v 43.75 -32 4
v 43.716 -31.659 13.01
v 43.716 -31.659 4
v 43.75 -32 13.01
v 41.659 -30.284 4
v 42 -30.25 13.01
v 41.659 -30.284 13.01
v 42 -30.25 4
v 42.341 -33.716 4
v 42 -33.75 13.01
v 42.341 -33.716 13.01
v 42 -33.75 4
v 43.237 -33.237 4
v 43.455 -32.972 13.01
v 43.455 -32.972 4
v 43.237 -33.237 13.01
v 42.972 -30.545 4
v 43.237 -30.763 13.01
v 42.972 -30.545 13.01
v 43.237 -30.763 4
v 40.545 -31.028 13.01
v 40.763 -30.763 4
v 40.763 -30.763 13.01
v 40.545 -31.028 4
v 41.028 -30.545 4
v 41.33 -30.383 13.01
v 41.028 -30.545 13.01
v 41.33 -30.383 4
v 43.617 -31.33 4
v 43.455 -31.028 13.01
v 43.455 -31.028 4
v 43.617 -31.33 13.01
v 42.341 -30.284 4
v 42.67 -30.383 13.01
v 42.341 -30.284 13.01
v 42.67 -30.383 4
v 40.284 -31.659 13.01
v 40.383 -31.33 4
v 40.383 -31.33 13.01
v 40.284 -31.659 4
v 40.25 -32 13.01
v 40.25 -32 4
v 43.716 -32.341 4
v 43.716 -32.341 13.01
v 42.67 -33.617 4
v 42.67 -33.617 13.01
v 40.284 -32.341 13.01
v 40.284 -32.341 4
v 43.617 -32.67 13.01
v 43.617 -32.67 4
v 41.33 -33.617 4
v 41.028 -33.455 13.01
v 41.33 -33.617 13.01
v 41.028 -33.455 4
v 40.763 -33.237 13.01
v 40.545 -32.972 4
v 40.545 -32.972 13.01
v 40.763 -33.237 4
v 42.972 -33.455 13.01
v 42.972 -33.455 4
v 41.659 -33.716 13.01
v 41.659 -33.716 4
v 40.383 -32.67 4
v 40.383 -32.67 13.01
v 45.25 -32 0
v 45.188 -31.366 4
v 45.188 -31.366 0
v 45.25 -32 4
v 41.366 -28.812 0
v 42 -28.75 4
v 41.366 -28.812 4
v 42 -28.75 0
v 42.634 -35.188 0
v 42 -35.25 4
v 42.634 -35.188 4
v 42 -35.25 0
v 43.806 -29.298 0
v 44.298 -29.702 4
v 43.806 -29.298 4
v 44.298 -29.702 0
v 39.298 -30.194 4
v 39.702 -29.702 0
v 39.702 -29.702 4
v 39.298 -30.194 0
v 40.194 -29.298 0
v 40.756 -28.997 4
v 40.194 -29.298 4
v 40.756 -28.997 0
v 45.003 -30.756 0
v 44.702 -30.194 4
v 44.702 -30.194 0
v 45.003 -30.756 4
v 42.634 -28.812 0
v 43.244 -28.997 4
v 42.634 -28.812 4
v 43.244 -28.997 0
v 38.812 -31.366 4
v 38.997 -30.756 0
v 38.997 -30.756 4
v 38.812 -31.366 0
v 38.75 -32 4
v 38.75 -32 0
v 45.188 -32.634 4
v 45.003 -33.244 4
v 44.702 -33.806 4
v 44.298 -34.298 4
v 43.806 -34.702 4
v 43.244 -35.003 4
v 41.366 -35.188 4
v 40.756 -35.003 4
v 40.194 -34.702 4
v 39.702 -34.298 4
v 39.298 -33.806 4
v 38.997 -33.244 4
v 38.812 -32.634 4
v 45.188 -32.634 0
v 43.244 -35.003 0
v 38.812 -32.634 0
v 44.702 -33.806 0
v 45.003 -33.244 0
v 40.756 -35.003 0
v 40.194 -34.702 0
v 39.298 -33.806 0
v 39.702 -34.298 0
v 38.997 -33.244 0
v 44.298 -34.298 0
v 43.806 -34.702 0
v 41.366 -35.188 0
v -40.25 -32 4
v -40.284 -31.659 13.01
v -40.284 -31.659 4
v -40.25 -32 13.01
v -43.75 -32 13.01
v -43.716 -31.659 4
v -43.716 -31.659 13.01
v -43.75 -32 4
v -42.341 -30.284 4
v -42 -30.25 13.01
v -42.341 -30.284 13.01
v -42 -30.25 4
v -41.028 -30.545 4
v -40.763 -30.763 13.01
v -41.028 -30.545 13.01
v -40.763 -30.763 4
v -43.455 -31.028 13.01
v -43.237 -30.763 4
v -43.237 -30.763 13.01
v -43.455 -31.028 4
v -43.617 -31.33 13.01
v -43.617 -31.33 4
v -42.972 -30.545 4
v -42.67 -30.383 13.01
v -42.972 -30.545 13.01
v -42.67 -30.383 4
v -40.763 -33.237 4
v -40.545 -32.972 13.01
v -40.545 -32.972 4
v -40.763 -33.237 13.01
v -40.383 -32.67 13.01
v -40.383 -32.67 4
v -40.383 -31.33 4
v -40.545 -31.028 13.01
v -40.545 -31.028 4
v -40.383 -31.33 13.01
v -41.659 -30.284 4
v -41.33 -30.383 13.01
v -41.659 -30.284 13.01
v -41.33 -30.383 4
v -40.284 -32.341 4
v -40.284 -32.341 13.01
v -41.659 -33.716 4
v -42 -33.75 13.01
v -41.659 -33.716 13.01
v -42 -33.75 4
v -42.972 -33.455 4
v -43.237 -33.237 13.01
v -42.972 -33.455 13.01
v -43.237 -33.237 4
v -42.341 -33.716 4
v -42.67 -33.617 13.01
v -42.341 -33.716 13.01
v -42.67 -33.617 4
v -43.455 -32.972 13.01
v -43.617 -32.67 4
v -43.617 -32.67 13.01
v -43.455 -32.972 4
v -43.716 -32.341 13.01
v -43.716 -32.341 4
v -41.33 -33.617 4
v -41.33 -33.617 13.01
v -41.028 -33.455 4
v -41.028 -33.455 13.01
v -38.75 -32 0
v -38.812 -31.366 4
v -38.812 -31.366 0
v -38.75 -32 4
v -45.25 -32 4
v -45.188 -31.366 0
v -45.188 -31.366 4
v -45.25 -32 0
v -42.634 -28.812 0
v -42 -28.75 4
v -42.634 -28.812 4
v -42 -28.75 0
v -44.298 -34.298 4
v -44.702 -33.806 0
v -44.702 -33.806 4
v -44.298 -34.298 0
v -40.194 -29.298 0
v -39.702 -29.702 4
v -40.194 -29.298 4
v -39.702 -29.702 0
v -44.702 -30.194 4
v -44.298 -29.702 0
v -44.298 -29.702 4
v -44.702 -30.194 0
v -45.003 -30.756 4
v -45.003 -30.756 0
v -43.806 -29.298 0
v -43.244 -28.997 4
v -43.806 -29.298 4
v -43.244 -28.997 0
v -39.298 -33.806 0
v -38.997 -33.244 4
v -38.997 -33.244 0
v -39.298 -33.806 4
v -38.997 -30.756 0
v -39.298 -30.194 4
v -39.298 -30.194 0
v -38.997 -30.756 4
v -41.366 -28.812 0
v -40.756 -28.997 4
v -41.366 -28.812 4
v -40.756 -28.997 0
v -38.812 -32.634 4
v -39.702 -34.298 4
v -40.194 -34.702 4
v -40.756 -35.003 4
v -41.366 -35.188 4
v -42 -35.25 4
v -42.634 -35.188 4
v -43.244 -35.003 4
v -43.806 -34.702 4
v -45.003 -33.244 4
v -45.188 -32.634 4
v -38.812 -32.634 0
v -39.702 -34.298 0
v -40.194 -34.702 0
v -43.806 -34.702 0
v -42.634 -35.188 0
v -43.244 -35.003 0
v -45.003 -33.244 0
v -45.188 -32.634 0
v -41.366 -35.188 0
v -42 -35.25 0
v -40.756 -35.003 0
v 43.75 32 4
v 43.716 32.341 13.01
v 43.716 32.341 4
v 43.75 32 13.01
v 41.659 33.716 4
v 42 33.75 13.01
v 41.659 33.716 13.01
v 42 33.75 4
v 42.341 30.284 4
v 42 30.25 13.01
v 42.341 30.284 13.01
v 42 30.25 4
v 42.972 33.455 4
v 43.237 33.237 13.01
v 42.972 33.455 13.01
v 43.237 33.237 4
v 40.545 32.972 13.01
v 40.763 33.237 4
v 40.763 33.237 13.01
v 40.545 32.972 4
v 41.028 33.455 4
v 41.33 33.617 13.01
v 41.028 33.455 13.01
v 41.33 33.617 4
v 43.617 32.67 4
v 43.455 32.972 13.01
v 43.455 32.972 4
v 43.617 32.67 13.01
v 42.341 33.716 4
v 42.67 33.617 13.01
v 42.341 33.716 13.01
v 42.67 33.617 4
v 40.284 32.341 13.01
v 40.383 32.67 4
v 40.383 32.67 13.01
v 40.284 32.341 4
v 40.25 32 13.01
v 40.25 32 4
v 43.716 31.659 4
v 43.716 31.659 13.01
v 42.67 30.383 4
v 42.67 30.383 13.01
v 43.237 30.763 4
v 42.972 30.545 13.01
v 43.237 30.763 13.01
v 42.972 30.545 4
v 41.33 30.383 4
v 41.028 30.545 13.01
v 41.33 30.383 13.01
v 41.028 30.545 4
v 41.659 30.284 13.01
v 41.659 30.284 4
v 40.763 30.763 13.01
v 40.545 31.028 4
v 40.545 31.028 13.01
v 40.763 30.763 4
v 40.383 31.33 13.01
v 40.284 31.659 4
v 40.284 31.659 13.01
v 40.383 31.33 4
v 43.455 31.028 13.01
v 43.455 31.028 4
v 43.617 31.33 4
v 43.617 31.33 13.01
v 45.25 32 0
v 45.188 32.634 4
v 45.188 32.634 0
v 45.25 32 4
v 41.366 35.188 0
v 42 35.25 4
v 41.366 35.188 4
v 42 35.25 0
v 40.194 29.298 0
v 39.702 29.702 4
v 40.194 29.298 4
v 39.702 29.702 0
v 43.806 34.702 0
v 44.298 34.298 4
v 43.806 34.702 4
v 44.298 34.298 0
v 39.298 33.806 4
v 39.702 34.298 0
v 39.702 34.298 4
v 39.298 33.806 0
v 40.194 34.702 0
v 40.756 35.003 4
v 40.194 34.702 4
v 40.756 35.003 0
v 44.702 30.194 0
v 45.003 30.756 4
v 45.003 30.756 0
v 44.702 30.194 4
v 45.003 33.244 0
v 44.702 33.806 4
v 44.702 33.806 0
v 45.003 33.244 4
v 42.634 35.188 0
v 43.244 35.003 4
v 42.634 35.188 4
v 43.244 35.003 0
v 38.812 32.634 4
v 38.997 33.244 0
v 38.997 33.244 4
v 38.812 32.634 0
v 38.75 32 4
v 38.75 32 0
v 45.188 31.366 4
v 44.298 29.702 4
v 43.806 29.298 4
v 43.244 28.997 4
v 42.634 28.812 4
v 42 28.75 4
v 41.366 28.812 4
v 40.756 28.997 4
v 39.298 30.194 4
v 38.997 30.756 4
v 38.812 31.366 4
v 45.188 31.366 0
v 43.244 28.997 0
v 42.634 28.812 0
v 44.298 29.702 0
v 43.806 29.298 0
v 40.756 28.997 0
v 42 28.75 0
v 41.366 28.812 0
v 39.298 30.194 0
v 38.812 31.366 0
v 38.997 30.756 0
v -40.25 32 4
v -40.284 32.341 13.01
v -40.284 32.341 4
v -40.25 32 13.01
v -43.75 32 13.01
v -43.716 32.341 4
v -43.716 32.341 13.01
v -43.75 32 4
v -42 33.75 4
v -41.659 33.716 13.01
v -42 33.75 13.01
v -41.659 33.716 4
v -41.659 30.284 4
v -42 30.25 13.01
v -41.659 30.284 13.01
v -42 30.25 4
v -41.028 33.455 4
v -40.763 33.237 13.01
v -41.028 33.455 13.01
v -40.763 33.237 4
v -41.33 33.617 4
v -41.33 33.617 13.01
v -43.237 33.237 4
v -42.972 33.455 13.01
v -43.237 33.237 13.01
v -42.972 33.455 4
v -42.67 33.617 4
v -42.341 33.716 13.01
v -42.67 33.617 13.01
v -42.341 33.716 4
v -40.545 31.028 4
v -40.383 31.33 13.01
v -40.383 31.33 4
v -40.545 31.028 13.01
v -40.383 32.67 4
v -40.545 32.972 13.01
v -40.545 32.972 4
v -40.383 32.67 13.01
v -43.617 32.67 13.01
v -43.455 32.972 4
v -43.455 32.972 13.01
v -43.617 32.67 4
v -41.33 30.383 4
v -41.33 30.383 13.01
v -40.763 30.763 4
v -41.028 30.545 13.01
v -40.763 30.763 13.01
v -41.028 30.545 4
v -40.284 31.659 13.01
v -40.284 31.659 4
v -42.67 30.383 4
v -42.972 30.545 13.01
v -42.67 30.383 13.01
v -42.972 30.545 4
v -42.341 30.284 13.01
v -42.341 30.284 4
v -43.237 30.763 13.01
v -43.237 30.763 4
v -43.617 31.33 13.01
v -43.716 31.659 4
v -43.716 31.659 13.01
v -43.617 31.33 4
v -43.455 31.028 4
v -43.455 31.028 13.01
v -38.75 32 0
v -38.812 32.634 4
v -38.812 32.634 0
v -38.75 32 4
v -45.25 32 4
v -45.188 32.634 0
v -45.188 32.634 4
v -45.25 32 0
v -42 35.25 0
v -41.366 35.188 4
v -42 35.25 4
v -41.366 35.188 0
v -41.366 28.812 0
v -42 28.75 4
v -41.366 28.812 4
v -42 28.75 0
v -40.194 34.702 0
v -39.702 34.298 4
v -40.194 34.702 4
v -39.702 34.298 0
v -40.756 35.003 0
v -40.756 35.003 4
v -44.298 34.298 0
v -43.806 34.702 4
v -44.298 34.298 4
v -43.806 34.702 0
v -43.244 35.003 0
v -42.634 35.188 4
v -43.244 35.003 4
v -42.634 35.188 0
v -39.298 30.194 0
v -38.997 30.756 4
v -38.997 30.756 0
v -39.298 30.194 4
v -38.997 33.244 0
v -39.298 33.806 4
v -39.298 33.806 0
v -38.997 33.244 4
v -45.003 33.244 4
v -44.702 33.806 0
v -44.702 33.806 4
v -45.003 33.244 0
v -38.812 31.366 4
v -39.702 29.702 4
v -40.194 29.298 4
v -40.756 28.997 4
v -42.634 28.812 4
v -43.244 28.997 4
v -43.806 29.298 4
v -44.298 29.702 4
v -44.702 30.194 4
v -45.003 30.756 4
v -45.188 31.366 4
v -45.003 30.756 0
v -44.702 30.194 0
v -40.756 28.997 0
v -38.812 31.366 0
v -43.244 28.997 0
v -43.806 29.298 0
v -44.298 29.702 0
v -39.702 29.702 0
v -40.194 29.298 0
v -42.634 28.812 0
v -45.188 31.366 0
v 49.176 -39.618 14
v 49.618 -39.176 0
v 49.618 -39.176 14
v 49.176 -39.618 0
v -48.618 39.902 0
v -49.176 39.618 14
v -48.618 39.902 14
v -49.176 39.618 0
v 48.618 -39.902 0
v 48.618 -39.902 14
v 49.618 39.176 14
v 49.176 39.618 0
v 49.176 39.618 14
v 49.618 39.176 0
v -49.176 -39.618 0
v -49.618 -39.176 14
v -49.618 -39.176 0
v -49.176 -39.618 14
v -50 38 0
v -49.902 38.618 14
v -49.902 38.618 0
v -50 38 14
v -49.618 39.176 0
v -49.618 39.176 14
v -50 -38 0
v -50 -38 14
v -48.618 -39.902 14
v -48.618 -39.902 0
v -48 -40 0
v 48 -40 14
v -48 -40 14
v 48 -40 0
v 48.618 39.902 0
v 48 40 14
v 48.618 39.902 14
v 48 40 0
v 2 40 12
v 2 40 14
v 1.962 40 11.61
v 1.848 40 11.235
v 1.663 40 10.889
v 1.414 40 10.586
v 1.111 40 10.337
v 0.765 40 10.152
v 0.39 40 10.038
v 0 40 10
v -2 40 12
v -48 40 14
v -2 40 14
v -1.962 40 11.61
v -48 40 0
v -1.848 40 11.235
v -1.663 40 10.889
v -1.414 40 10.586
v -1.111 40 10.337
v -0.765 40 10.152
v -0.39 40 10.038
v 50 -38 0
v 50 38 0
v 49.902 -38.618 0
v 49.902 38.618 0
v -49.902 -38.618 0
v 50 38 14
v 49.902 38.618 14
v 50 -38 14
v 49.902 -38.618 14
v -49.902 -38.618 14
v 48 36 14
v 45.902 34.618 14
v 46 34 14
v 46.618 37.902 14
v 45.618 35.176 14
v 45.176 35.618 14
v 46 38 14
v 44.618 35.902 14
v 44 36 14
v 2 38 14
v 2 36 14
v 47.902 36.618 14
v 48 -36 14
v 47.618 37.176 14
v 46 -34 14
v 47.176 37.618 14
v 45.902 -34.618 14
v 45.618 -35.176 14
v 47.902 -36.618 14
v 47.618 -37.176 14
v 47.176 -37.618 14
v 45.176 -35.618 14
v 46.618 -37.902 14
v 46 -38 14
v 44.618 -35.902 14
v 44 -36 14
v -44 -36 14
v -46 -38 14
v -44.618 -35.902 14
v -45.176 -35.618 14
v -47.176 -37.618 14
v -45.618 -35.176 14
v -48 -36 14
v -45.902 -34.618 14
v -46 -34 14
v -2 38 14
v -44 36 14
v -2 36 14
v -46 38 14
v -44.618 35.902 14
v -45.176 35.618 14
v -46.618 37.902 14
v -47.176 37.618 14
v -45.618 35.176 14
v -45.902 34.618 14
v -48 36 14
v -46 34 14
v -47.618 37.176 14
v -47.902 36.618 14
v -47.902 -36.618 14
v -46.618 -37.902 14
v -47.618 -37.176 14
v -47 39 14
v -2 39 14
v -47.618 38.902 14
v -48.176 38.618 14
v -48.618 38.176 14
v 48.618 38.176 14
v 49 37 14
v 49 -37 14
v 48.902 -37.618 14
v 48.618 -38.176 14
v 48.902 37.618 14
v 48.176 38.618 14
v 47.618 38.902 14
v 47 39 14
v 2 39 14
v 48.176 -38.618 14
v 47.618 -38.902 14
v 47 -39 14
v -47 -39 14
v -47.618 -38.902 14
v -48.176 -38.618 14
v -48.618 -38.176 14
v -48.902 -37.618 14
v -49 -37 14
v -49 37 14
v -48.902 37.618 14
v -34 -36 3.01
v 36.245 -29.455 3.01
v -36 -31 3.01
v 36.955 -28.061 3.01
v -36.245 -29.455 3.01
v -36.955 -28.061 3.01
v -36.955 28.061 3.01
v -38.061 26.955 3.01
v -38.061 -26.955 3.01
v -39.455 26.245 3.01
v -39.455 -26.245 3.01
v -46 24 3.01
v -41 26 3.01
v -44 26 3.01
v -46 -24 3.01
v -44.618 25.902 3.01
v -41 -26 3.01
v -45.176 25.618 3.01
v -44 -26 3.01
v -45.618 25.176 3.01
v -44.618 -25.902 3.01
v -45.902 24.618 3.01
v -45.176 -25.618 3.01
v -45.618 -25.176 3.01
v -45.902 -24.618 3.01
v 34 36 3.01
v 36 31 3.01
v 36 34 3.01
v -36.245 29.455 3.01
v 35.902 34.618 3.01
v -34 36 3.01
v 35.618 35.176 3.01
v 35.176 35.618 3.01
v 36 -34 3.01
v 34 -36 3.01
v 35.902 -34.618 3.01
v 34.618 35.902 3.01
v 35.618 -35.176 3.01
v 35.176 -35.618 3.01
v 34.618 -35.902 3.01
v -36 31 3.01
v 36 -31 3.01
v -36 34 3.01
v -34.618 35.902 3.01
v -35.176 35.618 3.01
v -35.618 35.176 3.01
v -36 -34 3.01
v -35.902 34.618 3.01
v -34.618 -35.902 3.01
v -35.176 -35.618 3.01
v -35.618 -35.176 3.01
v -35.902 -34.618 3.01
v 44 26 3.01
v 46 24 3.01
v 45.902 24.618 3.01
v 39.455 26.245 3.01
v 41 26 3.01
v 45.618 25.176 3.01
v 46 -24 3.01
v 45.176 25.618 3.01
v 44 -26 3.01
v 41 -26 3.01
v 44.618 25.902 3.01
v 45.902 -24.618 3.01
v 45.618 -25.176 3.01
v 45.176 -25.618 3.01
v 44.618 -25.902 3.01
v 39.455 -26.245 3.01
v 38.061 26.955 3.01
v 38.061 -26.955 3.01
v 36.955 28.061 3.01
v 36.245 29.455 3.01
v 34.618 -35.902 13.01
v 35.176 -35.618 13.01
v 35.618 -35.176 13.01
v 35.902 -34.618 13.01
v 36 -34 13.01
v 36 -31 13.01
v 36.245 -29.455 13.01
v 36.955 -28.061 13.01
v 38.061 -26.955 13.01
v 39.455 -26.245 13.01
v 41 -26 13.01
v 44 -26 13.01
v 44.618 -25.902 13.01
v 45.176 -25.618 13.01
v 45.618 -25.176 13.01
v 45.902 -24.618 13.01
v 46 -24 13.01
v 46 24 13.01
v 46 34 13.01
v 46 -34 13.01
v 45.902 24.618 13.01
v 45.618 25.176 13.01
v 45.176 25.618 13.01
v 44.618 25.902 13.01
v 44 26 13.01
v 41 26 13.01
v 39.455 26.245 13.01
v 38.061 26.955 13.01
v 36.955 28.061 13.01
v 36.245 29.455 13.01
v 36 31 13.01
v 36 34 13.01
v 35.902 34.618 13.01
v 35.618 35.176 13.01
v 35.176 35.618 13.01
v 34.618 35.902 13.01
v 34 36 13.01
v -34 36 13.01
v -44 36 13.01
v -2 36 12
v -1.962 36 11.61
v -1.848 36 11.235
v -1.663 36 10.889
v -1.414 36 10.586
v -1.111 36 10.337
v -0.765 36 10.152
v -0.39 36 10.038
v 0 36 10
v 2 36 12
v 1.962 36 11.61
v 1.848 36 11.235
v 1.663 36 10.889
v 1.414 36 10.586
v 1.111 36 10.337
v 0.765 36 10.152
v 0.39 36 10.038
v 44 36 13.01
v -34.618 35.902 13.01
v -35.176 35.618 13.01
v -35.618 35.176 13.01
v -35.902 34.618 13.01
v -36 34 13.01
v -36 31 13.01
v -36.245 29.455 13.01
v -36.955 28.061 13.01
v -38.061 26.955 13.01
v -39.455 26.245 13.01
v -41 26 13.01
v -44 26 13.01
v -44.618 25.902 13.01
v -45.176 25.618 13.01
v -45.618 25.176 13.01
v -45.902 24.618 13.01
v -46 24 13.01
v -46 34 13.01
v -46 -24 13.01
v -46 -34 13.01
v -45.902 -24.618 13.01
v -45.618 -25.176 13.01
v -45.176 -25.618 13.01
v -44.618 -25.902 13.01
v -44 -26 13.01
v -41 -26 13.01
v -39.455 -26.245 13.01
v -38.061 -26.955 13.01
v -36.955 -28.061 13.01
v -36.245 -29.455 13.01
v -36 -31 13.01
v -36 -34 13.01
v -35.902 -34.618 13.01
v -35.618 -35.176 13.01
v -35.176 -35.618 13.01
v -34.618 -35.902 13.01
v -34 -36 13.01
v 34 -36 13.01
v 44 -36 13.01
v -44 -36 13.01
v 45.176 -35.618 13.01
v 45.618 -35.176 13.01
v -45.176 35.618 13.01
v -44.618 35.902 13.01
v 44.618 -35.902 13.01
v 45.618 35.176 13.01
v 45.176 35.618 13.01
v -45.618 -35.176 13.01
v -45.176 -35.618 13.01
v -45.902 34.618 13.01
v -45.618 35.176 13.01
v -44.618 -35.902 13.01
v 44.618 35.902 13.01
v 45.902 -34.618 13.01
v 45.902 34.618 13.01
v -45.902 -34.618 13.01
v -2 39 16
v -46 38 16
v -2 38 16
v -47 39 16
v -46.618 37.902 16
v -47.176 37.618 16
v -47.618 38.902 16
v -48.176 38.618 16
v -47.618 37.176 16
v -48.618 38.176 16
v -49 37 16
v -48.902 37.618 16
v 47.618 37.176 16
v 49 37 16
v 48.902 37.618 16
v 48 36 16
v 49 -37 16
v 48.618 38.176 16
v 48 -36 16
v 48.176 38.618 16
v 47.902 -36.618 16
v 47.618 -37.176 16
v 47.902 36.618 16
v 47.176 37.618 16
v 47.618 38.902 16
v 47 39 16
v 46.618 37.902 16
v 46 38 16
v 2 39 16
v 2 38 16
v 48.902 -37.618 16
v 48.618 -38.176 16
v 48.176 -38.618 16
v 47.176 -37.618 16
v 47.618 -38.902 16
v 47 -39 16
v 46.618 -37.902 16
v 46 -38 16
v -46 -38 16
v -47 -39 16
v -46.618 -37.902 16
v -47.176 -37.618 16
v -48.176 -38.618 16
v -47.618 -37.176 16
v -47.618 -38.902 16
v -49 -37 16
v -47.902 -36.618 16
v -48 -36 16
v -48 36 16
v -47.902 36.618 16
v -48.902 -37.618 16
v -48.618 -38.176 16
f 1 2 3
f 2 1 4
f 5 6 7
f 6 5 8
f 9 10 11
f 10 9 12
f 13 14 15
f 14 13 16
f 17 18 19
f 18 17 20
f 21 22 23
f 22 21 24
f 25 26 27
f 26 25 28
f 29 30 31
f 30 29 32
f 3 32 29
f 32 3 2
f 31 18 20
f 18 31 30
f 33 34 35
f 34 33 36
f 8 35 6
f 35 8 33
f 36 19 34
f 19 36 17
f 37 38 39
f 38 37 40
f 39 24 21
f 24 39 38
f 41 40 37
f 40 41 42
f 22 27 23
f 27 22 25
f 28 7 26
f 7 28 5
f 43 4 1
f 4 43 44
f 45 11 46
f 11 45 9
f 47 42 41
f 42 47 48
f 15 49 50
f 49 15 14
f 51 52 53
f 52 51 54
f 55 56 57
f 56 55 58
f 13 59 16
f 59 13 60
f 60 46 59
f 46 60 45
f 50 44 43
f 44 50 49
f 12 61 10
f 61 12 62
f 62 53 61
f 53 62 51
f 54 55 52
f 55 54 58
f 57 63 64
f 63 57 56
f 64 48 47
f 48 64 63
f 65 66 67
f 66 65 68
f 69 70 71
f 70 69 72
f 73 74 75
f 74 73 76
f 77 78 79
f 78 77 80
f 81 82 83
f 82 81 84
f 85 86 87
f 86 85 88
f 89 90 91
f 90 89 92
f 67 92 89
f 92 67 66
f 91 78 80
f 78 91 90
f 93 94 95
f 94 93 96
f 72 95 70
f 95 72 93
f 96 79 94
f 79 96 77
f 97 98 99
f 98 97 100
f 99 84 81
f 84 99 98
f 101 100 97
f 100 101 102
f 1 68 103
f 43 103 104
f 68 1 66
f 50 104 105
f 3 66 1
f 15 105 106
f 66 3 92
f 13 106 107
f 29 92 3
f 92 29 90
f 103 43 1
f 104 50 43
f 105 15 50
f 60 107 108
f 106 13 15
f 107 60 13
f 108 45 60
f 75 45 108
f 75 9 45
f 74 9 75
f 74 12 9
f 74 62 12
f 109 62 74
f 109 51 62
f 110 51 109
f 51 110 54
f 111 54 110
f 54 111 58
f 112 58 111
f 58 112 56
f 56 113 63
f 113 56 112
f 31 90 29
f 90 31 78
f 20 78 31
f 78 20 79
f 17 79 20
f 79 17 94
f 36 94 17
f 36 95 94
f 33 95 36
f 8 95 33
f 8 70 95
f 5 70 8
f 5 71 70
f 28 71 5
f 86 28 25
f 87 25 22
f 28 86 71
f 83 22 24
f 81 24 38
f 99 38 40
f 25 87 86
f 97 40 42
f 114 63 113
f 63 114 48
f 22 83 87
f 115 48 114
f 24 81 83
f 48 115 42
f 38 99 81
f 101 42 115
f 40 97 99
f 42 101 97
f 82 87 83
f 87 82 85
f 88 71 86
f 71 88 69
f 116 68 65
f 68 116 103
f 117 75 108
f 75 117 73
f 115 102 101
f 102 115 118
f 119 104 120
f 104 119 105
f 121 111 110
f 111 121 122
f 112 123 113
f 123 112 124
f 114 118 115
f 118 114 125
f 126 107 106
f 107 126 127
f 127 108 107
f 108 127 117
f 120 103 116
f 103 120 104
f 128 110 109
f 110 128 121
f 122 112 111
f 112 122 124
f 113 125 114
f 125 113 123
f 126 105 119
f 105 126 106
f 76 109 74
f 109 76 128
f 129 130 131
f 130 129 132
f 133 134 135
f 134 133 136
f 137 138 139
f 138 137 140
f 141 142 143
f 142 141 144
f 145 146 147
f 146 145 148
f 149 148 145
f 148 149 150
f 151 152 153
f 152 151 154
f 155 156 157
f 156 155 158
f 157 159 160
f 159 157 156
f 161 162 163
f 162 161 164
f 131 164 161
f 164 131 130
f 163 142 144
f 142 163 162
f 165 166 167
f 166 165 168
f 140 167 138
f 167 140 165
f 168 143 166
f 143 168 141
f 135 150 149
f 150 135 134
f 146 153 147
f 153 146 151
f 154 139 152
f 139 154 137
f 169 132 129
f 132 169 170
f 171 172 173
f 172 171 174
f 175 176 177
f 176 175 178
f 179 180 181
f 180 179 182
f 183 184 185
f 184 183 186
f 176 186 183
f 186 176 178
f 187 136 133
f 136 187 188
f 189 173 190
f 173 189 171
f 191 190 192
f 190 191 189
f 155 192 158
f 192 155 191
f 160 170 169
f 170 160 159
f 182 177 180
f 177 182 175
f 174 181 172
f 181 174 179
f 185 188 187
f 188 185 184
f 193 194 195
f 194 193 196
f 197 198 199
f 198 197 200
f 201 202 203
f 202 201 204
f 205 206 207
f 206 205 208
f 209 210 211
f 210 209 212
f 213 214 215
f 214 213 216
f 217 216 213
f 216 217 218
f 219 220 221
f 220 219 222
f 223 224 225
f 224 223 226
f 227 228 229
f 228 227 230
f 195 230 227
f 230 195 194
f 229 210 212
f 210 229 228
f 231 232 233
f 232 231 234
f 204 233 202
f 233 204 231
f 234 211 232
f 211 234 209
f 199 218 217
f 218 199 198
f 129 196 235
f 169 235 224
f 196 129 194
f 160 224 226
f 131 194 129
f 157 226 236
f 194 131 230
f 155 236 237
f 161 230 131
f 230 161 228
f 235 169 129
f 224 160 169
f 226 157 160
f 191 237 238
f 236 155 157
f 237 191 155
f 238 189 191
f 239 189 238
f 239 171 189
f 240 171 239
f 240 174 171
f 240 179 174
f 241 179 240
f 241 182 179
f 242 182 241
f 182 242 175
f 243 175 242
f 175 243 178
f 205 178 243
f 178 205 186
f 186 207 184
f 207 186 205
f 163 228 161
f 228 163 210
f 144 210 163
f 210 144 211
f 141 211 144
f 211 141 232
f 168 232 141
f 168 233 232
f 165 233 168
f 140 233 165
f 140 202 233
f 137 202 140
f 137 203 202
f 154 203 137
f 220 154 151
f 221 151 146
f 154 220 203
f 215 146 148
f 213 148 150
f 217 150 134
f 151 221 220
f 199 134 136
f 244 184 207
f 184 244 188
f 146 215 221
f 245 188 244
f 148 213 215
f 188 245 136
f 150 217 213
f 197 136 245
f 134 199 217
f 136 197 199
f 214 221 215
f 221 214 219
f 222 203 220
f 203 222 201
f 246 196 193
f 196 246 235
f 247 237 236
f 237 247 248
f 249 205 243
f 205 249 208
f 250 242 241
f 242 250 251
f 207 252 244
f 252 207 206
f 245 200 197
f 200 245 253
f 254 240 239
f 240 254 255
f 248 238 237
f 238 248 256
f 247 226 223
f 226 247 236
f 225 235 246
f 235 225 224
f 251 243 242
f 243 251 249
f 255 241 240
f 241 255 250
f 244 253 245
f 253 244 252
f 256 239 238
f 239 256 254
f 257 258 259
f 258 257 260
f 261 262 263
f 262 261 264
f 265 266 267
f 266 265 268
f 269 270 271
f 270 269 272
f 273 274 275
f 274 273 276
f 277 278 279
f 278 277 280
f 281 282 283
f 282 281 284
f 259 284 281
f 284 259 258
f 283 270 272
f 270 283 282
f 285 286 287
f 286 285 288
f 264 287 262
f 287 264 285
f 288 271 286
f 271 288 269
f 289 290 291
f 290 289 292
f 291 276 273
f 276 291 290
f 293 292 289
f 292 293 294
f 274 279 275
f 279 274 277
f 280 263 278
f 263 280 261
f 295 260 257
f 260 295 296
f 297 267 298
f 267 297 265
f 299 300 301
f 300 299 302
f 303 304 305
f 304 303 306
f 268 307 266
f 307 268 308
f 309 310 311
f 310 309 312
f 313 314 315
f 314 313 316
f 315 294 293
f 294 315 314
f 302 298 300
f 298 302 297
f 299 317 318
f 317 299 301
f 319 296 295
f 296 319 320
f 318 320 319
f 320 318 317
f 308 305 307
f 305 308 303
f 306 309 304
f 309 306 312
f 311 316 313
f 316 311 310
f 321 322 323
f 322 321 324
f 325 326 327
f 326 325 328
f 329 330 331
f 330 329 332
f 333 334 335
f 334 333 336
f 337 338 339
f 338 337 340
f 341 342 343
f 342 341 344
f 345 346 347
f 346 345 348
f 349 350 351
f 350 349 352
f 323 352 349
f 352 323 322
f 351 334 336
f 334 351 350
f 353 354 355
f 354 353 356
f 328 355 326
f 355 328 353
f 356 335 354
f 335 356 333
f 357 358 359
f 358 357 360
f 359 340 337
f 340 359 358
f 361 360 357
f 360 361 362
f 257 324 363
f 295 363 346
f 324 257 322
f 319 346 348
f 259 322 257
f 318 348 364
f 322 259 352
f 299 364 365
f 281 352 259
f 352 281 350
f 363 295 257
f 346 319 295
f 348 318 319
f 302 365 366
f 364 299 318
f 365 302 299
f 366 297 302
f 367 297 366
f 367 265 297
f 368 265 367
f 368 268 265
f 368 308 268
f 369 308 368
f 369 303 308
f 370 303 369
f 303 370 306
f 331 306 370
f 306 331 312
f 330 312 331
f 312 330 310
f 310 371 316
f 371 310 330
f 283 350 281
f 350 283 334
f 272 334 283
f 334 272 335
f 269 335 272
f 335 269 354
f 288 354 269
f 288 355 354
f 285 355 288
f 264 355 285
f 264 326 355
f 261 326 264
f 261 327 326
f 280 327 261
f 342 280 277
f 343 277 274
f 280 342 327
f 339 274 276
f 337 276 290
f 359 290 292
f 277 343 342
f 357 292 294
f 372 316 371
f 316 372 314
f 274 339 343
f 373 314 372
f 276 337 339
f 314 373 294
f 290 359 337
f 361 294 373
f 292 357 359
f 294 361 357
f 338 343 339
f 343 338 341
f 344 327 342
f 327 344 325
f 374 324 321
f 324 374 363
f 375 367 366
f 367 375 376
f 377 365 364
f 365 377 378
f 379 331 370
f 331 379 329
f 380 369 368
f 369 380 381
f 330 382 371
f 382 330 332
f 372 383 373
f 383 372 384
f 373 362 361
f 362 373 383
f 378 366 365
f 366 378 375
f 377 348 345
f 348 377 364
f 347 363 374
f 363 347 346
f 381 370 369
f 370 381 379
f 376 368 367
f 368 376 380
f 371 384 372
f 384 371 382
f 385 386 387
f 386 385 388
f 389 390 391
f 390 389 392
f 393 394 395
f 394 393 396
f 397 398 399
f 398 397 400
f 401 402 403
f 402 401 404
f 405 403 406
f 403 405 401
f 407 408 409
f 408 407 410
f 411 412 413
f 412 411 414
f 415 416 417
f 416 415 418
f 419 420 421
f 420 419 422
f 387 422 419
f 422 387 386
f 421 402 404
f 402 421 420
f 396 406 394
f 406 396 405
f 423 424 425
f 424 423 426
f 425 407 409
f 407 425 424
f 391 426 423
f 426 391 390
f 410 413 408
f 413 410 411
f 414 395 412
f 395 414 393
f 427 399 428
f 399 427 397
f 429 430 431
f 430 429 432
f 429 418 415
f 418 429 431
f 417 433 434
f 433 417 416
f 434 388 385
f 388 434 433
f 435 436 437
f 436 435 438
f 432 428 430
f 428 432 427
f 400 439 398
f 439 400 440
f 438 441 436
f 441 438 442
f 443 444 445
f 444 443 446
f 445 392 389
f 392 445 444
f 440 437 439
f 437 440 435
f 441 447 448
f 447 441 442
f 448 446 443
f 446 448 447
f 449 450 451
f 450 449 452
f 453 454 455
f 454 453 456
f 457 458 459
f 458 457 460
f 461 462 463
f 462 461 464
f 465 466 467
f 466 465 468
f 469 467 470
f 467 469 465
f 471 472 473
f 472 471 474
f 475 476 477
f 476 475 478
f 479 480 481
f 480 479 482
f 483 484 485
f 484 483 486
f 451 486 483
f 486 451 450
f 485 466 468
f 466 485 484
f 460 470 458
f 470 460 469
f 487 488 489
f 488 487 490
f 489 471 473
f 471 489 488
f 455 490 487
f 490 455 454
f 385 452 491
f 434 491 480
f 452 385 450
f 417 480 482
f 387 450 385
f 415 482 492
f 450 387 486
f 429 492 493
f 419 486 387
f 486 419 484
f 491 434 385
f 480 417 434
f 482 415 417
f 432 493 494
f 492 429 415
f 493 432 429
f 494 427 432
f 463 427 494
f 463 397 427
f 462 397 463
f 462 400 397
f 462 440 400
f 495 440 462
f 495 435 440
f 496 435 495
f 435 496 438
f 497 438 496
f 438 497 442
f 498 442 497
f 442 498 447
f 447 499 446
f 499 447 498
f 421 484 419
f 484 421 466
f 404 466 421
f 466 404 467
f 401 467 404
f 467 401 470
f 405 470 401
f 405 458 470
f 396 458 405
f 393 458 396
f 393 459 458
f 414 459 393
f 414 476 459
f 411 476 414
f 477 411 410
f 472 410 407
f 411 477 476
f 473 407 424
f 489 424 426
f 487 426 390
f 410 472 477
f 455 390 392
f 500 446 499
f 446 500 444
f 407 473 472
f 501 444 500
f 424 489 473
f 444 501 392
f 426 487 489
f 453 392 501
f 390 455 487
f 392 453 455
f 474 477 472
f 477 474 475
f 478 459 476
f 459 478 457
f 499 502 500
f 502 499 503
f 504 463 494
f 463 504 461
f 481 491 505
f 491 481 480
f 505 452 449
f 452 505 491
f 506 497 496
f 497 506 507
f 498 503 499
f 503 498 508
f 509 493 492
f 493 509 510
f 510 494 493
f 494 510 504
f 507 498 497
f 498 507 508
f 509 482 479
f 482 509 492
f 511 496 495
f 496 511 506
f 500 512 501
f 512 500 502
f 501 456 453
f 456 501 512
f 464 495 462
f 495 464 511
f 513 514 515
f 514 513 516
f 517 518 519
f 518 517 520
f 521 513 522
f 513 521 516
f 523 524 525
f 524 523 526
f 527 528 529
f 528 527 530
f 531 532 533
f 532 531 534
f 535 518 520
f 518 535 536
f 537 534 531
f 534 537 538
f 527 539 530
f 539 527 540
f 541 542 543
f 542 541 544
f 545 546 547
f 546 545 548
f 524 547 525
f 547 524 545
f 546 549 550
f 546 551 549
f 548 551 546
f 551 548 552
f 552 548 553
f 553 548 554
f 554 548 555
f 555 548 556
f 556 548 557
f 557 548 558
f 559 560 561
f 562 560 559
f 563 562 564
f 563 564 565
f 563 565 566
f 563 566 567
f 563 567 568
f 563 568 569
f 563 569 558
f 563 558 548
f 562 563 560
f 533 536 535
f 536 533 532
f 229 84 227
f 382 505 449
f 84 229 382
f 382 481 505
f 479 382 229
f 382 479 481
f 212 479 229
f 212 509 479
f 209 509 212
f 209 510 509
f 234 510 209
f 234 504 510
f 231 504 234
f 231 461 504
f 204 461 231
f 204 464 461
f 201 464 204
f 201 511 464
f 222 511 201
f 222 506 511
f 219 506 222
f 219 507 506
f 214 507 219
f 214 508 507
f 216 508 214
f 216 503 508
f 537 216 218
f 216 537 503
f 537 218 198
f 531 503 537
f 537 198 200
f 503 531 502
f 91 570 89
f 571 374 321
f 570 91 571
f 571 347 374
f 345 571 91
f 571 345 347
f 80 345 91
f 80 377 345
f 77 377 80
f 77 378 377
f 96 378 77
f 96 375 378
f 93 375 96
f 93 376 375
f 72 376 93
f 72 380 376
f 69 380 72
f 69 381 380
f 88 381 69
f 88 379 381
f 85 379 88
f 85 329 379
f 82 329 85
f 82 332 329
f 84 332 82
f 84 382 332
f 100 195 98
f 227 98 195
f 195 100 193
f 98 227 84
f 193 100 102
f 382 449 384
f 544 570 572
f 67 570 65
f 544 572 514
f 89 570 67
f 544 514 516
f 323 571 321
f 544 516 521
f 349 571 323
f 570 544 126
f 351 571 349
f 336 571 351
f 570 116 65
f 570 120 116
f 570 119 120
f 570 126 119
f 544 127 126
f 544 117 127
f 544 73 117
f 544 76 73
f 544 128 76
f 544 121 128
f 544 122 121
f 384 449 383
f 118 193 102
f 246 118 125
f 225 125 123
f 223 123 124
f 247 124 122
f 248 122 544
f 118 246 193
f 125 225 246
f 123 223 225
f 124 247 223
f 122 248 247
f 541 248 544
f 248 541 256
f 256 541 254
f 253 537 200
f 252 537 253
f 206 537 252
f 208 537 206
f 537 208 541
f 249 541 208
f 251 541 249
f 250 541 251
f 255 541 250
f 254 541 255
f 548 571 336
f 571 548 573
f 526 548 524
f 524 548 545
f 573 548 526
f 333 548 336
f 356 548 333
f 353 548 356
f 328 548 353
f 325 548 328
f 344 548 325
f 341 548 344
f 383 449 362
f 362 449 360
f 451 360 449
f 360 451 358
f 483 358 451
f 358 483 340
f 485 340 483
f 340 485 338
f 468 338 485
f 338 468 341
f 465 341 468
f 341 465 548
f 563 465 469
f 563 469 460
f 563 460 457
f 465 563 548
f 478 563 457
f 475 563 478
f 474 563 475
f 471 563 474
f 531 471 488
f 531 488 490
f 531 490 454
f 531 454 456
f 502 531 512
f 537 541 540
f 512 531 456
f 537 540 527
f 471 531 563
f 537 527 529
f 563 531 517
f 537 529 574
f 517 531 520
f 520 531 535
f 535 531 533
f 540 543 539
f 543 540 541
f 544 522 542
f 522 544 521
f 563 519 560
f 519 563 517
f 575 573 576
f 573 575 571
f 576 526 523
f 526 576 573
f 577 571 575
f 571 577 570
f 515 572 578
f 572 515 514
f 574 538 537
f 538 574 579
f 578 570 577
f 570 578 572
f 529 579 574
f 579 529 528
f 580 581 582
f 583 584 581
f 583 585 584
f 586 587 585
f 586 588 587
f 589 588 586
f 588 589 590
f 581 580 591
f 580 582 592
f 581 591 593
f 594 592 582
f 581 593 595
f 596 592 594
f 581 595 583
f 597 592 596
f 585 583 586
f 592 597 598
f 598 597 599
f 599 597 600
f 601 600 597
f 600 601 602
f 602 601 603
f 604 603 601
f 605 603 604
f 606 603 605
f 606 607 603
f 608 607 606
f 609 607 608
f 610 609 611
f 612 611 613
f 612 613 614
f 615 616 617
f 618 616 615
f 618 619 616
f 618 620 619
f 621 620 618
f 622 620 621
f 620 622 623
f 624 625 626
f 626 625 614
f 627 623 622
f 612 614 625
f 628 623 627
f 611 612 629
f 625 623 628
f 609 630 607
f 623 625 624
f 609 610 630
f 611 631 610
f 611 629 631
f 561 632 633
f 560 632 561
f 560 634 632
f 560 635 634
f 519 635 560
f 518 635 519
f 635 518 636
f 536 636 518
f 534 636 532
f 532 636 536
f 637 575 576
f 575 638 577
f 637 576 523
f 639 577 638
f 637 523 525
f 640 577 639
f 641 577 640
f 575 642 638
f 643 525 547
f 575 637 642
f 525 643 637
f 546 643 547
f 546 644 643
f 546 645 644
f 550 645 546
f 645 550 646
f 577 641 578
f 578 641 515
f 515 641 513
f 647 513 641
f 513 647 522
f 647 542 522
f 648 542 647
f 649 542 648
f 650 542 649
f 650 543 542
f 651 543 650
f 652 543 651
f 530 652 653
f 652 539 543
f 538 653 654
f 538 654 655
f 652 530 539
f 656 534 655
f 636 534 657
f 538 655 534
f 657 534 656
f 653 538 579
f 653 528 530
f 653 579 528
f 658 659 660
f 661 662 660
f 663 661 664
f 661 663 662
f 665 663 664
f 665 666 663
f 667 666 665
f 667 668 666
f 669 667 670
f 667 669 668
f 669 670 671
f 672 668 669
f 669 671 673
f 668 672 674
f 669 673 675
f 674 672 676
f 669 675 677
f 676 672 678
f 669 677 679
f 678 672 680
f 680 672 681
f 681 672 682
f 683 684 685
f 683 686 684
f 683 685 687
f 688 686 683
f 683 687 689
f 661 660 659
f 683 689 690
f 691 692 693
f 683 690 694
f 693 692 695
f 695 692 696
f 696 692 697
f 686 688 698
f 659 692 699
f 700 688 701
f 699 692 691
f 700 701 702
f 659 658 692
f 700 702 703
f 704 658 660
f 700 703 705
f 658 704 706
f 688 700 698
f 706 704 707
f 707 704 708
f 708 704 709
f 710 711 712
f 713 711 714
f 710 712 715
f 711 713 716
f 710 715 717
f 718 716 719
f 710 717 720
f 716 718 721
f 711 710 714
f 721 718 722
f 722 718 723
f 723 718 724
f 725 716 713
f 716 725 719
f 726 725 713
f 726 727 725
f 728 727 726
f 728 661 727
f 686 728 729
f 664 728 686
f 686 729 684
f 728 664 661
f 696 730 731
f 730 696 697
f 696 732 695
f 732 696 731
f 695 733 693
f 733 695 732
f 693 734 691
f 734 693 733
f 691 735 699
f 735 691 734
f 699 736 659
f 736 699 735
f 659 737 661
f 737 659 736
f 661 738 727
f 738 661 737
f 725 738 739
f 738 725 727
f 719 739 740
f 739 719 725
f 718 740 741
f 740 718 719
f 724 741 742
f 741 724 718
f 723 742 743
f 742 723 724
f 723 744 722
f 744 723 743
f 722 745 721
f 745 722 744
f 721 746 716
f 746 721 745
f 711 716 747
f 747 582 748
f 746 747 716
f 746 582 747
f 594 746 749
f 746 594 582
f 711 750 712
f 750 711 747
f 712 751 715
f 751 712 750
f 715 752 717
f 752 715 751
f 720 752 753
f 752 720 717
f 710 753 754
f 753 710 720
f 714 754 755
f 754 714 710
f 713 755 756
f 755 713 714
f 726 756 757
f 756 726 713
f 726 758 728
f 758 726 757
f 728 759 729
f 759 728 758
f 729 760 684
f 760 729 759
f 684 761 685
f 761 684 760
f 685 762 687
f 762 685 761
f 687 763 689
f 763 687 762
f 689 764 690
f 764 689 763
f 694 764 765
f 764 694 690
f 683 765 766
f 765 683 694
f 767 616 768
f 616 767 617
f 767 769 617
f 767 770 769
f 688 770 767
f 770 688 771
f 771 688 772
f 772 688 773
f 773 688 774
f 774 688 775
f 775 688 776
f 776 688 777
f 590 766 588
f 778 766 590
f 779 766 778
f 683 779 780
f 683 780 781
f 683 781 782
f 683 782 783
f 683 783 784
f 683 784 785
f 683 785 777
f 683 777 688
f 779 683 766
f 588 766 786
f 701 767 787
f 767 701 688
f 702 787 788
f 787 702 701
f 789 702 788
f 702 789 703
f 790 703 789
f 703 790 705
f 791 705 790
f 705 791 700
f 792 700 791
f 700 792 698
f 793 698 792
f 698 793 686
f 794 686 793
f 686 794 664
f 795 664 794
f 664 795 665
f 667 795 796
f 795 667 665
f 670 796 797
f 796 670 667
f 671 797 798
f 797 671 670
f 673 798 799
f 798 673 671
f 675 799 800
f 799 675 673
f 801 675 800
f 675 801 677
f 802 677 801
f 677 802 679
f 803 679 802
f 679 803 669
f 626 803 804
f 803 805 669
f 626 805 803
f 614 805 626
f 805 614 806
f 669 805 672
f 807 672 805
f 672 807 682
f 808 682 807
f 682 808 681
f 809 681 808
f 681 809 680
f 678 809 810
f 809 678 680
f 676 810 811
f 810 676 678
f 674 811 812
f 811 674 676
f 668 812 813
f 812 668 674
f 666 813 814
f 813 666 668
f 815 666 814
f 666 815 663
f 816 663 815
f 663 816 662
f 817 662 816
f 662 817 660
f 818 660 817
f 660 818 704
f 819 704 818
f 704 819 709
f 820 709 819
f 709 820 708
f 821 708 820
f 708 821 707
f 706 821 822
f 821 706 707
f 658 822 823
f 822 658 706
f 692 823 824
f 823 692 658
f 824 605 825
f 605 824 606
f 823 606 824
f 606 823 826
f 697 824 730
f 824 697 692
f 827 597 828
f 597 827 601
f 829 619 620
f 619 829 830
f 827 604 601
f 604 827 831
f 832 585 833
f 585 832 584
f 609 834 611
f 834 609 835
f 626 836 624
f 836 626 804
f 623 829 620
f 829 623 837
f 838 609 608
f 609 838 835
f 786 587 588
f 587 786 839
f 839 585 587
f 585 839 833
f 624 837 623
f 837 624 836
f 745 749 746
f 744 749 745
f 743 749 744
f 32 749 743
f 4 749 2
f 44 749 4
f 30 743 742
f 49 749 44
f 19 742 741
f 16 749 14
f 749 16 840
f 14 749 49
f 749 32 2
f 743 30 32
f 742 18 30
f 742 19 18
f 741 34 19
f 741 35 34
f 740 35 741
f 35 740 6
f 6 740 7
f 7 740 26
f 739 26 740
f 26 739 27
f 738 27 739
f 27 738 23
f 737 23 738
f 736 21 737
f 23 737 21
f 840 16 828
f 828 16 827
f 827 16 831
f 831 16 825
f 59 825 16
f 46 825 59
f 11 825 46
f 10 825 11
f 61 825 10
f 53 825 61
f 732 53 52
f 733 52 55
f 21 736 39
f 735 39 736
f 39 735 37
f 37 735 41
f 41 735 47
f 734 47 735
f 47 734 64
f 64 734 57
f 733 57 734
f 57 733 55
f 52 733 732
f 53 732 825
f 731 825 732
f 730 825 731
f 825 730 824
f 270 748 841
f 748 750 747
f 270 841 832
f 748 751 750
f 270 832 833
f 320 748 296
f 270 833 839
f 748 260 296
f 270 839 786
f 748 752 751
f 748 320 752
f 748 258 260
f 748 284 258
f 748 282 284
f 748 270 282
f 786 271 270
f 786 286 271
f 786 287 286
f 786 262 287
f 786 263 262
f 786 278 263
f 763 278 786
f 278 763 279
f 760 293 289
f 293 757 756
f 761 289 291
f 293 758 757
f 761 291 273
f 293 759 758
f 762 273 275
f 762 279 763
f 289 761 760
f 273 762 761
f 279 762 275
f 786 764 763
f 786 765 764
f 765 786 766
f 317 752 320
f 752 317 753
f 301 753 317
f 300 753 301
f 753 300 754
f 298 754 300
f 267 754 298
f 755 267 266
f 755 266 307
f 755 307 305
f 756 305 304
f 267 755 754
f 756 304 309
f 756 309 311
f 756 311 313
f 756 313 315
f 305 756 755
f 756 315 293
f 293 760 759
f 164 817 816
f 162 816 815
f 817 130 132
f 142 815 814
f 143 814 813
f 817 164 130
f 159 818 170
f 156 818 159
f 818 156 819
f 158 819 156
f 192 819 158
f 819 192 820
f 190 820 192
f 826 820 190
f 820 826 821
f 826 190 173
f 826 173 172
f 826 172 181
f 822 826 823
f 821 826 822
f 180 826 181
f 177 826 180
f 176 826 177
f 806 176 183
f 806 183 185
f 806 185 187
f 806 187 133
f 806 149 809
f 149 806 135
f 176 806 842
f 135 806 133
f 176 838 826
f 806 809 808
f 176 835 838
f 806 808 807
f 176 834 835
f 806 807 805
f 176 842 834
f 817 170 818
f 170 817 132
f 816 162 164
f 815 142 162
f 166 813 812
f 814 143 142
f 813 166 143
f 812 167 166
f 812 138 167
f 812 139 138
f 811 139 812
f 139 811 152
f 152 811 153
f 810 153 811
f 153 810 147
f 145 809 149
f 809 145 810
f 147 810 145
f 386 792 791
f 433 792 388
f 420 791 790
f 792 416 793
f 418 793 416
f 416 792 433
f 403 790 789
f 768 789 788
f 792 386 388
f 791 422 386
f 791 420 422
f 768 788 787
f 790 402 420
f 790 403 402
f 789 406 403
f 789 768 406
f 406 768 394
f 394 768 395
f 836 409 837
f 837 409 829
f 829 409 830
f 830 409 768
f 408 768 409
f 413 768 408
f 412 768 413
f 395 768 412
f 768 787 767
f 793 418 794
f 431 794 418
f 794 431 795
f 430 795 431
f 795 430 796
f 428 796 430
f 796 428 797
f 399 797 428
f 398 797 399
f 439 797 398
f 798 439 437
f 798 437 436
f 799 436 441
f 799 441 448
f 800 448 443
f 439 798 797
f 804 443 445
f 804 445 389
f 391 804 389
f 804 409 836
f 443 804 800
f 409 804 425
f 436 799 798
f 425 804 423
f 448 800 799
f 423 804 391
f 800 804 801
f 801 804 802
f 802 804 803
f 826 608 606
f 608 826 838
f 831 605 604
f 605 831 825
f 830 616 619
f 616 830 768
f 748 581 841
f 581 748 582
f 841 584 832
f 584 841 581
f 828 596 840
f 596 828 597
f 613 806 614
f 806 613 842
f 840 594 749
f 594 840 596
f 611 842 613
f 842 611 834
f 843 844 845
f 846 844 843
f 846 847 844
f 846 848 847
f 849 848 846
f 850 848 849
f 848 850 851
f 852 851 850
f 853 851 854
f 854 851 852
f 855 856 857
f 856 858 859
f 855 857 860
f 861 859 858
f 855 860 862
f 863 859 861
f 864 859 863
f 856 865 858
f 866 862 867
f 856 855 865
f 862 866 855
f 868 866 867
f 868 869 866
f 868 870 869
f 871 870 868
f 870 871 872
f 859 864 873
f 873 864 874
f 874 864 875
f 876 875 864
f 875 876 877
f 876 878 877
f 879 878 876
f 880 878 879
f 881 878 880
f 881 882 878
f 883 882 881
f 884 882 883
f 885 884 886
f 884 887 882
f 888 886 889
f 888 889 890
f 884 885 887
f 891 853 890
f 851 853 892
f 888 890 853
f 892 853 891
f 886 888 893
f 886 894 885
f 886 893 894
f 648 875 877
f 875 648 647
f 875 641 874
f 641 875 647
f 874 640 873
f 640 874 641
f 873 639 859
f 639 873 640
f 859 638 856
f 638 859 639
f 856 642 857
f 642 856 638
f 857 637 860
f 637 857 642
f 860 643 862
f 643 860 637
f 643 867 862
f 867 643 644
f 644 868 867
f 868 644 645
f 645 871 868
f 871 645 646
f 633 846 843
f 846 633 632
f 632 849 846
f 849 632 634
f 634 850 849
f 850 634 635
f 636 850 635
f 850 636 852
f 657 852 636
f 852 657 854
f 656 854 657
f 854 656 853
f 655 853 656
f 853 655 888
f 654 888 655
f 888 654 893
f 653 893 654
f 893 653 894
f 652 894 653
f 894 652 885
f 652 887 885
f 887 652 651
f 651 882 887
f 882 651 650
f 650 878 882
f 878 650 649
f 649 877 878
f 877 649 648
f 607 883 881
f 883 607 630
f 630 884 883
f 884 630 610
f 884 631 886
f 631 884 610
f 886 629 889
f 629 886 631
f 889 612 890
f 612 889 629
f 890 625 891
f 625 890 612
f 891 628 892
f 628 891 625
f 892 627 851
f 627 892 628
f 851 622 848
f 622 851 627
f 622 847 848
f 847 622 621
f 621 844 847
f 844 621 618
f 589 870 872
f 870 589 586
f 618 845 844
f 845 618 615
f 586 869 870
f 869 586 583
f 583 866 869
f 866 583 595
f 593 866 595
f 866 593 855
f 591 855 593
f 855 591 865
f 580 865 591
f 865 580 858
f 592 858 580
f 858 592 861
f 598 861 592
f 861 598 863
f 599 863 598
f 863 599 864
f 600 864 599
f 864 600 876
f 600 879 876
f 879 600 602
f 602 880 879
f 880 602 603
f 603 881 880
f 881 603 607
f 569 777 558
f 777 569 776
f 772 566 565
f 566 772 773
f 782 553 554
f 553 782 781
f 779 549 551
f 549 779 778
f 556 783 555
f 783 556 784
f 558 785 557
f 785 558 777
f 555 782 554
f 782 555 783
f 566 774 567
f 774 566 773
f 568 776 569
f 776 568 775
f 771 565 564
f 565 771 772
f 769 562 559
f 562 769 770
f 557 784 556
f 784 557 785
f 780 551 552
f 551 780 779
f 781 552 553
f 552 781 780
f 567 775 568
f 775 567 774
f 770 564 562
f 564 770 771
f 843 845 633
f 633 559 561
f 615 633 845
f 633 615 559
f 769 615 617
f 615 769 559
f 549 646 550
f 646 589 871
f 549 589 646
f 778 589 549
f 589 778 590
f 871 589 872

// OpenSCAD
//Created by Oleg Skidan RC6OF (ex UR3IQO)
//
//Visit https://github.com/UR3IQO/CW_Paddle for more information
//
//This project is distributed under Creative Commons Attribution 4.0 International
//See the LICENSE file for the details

$fn = 32;

include <lib/polyround.scad>

h = 14;        //Bottom part height (высота нижней части основания)
width = 100;   //Keyer width (ширина ключа)
depth = 80;    //Keyer depth (глубина ключа)
cd = 4;        //Cable diameter (диаметр кабеля)

module cover_mount_hole(pos)
{
   translate(pos) cylinder(h+1, d = 3.5);
   translate([pos.x, pos.y, -1]) cylinder(5, d = 6.5);
}

module rounded_square(size, r)
{
   pts = [[ size.x/2,  size.y/2, r],
          [-size.x/2,  size.y/2, r],
          [-size.x/2, -size.y/2, r],
          [ size.x/2, -size.y/2, r]];
   polygon(polyRound(pts));
}

module rounded_square_with_mounts(size, r, size_m, r_m)
{
   pts = [[ size.x/2 - size_m.x,  size.y/2           , r],
          [ size.x/2 - size_m.x,  size.y/2 - size_m.y, r_m],
          [ size.x/2           ,  size.y/2 - size_m.y, r],

          [ size.x/2           , -size.y/2 + size_m.y, r],   
          [ size.x/2 - size_m.x, -size.y/2 + size_m.y, r_m],
          [ size.x/2 - size_m.x, -size.y/2           , r],


          [-size.x/2 + size_m.x, -size.y/2           , r],
          [-size.x/2 + size_m.x, -size.y/2 + size_m.y, r_m],
          [-size.x/2           , -size.y/2 + size_m.y, r],

          [-size.x/2           , size.y/2 - size_m.y, r],
          [-size.x/2 + size_m.x, size.y/2 - size_m.y, r_m],
          [-size.x/2 + size_m.x, size.y/2           , r],
   ];
   polygon(polyRound(pts));
}

difference()
{
   union()
   {
      /* Keyer base (основание) */
      difference()
      {
         linear_extrude(h) rounded_square([width, depth], 2);

         /* Inner part (внутренности) */
         translate([0, 0, 3 + 0.01]) linear_extrude(h - 3) rounded_square_with_mounts([width - 8, depth - 8], 2, [10,10], 5);
         translate([0, 0, h - 0.99]) linear_extrude(1) rounded_square([width - 8, depth - 8], 2);
      }

      /* Top part interfacing (выступ для стыковки с верхней частью основания) */
      translate([0, 0, h]) linear_extrude(2) 
         difference() 
         {
            rounded_square([width - 2, depth - 2], 2);
            rounded_square([width - 4, depth - 4], 2);
         }
   }

   x = width/2 - 8;
   y = depth/2 - 8;
   cover_mount_hole([ x, -y, 0]);
   cover_mount_hole([-x, -y, 0]);
   cover_mount_hole([ x,  y, 0]);
   cover_mount_hole([-x,  y, 0]);         

   /* Cable cutout (вырез под кабель) */
   translate([0, depth/2 + 0.01, h - cd/2]) rotate([90, 0, 0])
   {
      cylinder(10, d = cd);
      translate([-cd/2, 0, 0]) cube([cd, cd + 3, 10]);
   }

}
